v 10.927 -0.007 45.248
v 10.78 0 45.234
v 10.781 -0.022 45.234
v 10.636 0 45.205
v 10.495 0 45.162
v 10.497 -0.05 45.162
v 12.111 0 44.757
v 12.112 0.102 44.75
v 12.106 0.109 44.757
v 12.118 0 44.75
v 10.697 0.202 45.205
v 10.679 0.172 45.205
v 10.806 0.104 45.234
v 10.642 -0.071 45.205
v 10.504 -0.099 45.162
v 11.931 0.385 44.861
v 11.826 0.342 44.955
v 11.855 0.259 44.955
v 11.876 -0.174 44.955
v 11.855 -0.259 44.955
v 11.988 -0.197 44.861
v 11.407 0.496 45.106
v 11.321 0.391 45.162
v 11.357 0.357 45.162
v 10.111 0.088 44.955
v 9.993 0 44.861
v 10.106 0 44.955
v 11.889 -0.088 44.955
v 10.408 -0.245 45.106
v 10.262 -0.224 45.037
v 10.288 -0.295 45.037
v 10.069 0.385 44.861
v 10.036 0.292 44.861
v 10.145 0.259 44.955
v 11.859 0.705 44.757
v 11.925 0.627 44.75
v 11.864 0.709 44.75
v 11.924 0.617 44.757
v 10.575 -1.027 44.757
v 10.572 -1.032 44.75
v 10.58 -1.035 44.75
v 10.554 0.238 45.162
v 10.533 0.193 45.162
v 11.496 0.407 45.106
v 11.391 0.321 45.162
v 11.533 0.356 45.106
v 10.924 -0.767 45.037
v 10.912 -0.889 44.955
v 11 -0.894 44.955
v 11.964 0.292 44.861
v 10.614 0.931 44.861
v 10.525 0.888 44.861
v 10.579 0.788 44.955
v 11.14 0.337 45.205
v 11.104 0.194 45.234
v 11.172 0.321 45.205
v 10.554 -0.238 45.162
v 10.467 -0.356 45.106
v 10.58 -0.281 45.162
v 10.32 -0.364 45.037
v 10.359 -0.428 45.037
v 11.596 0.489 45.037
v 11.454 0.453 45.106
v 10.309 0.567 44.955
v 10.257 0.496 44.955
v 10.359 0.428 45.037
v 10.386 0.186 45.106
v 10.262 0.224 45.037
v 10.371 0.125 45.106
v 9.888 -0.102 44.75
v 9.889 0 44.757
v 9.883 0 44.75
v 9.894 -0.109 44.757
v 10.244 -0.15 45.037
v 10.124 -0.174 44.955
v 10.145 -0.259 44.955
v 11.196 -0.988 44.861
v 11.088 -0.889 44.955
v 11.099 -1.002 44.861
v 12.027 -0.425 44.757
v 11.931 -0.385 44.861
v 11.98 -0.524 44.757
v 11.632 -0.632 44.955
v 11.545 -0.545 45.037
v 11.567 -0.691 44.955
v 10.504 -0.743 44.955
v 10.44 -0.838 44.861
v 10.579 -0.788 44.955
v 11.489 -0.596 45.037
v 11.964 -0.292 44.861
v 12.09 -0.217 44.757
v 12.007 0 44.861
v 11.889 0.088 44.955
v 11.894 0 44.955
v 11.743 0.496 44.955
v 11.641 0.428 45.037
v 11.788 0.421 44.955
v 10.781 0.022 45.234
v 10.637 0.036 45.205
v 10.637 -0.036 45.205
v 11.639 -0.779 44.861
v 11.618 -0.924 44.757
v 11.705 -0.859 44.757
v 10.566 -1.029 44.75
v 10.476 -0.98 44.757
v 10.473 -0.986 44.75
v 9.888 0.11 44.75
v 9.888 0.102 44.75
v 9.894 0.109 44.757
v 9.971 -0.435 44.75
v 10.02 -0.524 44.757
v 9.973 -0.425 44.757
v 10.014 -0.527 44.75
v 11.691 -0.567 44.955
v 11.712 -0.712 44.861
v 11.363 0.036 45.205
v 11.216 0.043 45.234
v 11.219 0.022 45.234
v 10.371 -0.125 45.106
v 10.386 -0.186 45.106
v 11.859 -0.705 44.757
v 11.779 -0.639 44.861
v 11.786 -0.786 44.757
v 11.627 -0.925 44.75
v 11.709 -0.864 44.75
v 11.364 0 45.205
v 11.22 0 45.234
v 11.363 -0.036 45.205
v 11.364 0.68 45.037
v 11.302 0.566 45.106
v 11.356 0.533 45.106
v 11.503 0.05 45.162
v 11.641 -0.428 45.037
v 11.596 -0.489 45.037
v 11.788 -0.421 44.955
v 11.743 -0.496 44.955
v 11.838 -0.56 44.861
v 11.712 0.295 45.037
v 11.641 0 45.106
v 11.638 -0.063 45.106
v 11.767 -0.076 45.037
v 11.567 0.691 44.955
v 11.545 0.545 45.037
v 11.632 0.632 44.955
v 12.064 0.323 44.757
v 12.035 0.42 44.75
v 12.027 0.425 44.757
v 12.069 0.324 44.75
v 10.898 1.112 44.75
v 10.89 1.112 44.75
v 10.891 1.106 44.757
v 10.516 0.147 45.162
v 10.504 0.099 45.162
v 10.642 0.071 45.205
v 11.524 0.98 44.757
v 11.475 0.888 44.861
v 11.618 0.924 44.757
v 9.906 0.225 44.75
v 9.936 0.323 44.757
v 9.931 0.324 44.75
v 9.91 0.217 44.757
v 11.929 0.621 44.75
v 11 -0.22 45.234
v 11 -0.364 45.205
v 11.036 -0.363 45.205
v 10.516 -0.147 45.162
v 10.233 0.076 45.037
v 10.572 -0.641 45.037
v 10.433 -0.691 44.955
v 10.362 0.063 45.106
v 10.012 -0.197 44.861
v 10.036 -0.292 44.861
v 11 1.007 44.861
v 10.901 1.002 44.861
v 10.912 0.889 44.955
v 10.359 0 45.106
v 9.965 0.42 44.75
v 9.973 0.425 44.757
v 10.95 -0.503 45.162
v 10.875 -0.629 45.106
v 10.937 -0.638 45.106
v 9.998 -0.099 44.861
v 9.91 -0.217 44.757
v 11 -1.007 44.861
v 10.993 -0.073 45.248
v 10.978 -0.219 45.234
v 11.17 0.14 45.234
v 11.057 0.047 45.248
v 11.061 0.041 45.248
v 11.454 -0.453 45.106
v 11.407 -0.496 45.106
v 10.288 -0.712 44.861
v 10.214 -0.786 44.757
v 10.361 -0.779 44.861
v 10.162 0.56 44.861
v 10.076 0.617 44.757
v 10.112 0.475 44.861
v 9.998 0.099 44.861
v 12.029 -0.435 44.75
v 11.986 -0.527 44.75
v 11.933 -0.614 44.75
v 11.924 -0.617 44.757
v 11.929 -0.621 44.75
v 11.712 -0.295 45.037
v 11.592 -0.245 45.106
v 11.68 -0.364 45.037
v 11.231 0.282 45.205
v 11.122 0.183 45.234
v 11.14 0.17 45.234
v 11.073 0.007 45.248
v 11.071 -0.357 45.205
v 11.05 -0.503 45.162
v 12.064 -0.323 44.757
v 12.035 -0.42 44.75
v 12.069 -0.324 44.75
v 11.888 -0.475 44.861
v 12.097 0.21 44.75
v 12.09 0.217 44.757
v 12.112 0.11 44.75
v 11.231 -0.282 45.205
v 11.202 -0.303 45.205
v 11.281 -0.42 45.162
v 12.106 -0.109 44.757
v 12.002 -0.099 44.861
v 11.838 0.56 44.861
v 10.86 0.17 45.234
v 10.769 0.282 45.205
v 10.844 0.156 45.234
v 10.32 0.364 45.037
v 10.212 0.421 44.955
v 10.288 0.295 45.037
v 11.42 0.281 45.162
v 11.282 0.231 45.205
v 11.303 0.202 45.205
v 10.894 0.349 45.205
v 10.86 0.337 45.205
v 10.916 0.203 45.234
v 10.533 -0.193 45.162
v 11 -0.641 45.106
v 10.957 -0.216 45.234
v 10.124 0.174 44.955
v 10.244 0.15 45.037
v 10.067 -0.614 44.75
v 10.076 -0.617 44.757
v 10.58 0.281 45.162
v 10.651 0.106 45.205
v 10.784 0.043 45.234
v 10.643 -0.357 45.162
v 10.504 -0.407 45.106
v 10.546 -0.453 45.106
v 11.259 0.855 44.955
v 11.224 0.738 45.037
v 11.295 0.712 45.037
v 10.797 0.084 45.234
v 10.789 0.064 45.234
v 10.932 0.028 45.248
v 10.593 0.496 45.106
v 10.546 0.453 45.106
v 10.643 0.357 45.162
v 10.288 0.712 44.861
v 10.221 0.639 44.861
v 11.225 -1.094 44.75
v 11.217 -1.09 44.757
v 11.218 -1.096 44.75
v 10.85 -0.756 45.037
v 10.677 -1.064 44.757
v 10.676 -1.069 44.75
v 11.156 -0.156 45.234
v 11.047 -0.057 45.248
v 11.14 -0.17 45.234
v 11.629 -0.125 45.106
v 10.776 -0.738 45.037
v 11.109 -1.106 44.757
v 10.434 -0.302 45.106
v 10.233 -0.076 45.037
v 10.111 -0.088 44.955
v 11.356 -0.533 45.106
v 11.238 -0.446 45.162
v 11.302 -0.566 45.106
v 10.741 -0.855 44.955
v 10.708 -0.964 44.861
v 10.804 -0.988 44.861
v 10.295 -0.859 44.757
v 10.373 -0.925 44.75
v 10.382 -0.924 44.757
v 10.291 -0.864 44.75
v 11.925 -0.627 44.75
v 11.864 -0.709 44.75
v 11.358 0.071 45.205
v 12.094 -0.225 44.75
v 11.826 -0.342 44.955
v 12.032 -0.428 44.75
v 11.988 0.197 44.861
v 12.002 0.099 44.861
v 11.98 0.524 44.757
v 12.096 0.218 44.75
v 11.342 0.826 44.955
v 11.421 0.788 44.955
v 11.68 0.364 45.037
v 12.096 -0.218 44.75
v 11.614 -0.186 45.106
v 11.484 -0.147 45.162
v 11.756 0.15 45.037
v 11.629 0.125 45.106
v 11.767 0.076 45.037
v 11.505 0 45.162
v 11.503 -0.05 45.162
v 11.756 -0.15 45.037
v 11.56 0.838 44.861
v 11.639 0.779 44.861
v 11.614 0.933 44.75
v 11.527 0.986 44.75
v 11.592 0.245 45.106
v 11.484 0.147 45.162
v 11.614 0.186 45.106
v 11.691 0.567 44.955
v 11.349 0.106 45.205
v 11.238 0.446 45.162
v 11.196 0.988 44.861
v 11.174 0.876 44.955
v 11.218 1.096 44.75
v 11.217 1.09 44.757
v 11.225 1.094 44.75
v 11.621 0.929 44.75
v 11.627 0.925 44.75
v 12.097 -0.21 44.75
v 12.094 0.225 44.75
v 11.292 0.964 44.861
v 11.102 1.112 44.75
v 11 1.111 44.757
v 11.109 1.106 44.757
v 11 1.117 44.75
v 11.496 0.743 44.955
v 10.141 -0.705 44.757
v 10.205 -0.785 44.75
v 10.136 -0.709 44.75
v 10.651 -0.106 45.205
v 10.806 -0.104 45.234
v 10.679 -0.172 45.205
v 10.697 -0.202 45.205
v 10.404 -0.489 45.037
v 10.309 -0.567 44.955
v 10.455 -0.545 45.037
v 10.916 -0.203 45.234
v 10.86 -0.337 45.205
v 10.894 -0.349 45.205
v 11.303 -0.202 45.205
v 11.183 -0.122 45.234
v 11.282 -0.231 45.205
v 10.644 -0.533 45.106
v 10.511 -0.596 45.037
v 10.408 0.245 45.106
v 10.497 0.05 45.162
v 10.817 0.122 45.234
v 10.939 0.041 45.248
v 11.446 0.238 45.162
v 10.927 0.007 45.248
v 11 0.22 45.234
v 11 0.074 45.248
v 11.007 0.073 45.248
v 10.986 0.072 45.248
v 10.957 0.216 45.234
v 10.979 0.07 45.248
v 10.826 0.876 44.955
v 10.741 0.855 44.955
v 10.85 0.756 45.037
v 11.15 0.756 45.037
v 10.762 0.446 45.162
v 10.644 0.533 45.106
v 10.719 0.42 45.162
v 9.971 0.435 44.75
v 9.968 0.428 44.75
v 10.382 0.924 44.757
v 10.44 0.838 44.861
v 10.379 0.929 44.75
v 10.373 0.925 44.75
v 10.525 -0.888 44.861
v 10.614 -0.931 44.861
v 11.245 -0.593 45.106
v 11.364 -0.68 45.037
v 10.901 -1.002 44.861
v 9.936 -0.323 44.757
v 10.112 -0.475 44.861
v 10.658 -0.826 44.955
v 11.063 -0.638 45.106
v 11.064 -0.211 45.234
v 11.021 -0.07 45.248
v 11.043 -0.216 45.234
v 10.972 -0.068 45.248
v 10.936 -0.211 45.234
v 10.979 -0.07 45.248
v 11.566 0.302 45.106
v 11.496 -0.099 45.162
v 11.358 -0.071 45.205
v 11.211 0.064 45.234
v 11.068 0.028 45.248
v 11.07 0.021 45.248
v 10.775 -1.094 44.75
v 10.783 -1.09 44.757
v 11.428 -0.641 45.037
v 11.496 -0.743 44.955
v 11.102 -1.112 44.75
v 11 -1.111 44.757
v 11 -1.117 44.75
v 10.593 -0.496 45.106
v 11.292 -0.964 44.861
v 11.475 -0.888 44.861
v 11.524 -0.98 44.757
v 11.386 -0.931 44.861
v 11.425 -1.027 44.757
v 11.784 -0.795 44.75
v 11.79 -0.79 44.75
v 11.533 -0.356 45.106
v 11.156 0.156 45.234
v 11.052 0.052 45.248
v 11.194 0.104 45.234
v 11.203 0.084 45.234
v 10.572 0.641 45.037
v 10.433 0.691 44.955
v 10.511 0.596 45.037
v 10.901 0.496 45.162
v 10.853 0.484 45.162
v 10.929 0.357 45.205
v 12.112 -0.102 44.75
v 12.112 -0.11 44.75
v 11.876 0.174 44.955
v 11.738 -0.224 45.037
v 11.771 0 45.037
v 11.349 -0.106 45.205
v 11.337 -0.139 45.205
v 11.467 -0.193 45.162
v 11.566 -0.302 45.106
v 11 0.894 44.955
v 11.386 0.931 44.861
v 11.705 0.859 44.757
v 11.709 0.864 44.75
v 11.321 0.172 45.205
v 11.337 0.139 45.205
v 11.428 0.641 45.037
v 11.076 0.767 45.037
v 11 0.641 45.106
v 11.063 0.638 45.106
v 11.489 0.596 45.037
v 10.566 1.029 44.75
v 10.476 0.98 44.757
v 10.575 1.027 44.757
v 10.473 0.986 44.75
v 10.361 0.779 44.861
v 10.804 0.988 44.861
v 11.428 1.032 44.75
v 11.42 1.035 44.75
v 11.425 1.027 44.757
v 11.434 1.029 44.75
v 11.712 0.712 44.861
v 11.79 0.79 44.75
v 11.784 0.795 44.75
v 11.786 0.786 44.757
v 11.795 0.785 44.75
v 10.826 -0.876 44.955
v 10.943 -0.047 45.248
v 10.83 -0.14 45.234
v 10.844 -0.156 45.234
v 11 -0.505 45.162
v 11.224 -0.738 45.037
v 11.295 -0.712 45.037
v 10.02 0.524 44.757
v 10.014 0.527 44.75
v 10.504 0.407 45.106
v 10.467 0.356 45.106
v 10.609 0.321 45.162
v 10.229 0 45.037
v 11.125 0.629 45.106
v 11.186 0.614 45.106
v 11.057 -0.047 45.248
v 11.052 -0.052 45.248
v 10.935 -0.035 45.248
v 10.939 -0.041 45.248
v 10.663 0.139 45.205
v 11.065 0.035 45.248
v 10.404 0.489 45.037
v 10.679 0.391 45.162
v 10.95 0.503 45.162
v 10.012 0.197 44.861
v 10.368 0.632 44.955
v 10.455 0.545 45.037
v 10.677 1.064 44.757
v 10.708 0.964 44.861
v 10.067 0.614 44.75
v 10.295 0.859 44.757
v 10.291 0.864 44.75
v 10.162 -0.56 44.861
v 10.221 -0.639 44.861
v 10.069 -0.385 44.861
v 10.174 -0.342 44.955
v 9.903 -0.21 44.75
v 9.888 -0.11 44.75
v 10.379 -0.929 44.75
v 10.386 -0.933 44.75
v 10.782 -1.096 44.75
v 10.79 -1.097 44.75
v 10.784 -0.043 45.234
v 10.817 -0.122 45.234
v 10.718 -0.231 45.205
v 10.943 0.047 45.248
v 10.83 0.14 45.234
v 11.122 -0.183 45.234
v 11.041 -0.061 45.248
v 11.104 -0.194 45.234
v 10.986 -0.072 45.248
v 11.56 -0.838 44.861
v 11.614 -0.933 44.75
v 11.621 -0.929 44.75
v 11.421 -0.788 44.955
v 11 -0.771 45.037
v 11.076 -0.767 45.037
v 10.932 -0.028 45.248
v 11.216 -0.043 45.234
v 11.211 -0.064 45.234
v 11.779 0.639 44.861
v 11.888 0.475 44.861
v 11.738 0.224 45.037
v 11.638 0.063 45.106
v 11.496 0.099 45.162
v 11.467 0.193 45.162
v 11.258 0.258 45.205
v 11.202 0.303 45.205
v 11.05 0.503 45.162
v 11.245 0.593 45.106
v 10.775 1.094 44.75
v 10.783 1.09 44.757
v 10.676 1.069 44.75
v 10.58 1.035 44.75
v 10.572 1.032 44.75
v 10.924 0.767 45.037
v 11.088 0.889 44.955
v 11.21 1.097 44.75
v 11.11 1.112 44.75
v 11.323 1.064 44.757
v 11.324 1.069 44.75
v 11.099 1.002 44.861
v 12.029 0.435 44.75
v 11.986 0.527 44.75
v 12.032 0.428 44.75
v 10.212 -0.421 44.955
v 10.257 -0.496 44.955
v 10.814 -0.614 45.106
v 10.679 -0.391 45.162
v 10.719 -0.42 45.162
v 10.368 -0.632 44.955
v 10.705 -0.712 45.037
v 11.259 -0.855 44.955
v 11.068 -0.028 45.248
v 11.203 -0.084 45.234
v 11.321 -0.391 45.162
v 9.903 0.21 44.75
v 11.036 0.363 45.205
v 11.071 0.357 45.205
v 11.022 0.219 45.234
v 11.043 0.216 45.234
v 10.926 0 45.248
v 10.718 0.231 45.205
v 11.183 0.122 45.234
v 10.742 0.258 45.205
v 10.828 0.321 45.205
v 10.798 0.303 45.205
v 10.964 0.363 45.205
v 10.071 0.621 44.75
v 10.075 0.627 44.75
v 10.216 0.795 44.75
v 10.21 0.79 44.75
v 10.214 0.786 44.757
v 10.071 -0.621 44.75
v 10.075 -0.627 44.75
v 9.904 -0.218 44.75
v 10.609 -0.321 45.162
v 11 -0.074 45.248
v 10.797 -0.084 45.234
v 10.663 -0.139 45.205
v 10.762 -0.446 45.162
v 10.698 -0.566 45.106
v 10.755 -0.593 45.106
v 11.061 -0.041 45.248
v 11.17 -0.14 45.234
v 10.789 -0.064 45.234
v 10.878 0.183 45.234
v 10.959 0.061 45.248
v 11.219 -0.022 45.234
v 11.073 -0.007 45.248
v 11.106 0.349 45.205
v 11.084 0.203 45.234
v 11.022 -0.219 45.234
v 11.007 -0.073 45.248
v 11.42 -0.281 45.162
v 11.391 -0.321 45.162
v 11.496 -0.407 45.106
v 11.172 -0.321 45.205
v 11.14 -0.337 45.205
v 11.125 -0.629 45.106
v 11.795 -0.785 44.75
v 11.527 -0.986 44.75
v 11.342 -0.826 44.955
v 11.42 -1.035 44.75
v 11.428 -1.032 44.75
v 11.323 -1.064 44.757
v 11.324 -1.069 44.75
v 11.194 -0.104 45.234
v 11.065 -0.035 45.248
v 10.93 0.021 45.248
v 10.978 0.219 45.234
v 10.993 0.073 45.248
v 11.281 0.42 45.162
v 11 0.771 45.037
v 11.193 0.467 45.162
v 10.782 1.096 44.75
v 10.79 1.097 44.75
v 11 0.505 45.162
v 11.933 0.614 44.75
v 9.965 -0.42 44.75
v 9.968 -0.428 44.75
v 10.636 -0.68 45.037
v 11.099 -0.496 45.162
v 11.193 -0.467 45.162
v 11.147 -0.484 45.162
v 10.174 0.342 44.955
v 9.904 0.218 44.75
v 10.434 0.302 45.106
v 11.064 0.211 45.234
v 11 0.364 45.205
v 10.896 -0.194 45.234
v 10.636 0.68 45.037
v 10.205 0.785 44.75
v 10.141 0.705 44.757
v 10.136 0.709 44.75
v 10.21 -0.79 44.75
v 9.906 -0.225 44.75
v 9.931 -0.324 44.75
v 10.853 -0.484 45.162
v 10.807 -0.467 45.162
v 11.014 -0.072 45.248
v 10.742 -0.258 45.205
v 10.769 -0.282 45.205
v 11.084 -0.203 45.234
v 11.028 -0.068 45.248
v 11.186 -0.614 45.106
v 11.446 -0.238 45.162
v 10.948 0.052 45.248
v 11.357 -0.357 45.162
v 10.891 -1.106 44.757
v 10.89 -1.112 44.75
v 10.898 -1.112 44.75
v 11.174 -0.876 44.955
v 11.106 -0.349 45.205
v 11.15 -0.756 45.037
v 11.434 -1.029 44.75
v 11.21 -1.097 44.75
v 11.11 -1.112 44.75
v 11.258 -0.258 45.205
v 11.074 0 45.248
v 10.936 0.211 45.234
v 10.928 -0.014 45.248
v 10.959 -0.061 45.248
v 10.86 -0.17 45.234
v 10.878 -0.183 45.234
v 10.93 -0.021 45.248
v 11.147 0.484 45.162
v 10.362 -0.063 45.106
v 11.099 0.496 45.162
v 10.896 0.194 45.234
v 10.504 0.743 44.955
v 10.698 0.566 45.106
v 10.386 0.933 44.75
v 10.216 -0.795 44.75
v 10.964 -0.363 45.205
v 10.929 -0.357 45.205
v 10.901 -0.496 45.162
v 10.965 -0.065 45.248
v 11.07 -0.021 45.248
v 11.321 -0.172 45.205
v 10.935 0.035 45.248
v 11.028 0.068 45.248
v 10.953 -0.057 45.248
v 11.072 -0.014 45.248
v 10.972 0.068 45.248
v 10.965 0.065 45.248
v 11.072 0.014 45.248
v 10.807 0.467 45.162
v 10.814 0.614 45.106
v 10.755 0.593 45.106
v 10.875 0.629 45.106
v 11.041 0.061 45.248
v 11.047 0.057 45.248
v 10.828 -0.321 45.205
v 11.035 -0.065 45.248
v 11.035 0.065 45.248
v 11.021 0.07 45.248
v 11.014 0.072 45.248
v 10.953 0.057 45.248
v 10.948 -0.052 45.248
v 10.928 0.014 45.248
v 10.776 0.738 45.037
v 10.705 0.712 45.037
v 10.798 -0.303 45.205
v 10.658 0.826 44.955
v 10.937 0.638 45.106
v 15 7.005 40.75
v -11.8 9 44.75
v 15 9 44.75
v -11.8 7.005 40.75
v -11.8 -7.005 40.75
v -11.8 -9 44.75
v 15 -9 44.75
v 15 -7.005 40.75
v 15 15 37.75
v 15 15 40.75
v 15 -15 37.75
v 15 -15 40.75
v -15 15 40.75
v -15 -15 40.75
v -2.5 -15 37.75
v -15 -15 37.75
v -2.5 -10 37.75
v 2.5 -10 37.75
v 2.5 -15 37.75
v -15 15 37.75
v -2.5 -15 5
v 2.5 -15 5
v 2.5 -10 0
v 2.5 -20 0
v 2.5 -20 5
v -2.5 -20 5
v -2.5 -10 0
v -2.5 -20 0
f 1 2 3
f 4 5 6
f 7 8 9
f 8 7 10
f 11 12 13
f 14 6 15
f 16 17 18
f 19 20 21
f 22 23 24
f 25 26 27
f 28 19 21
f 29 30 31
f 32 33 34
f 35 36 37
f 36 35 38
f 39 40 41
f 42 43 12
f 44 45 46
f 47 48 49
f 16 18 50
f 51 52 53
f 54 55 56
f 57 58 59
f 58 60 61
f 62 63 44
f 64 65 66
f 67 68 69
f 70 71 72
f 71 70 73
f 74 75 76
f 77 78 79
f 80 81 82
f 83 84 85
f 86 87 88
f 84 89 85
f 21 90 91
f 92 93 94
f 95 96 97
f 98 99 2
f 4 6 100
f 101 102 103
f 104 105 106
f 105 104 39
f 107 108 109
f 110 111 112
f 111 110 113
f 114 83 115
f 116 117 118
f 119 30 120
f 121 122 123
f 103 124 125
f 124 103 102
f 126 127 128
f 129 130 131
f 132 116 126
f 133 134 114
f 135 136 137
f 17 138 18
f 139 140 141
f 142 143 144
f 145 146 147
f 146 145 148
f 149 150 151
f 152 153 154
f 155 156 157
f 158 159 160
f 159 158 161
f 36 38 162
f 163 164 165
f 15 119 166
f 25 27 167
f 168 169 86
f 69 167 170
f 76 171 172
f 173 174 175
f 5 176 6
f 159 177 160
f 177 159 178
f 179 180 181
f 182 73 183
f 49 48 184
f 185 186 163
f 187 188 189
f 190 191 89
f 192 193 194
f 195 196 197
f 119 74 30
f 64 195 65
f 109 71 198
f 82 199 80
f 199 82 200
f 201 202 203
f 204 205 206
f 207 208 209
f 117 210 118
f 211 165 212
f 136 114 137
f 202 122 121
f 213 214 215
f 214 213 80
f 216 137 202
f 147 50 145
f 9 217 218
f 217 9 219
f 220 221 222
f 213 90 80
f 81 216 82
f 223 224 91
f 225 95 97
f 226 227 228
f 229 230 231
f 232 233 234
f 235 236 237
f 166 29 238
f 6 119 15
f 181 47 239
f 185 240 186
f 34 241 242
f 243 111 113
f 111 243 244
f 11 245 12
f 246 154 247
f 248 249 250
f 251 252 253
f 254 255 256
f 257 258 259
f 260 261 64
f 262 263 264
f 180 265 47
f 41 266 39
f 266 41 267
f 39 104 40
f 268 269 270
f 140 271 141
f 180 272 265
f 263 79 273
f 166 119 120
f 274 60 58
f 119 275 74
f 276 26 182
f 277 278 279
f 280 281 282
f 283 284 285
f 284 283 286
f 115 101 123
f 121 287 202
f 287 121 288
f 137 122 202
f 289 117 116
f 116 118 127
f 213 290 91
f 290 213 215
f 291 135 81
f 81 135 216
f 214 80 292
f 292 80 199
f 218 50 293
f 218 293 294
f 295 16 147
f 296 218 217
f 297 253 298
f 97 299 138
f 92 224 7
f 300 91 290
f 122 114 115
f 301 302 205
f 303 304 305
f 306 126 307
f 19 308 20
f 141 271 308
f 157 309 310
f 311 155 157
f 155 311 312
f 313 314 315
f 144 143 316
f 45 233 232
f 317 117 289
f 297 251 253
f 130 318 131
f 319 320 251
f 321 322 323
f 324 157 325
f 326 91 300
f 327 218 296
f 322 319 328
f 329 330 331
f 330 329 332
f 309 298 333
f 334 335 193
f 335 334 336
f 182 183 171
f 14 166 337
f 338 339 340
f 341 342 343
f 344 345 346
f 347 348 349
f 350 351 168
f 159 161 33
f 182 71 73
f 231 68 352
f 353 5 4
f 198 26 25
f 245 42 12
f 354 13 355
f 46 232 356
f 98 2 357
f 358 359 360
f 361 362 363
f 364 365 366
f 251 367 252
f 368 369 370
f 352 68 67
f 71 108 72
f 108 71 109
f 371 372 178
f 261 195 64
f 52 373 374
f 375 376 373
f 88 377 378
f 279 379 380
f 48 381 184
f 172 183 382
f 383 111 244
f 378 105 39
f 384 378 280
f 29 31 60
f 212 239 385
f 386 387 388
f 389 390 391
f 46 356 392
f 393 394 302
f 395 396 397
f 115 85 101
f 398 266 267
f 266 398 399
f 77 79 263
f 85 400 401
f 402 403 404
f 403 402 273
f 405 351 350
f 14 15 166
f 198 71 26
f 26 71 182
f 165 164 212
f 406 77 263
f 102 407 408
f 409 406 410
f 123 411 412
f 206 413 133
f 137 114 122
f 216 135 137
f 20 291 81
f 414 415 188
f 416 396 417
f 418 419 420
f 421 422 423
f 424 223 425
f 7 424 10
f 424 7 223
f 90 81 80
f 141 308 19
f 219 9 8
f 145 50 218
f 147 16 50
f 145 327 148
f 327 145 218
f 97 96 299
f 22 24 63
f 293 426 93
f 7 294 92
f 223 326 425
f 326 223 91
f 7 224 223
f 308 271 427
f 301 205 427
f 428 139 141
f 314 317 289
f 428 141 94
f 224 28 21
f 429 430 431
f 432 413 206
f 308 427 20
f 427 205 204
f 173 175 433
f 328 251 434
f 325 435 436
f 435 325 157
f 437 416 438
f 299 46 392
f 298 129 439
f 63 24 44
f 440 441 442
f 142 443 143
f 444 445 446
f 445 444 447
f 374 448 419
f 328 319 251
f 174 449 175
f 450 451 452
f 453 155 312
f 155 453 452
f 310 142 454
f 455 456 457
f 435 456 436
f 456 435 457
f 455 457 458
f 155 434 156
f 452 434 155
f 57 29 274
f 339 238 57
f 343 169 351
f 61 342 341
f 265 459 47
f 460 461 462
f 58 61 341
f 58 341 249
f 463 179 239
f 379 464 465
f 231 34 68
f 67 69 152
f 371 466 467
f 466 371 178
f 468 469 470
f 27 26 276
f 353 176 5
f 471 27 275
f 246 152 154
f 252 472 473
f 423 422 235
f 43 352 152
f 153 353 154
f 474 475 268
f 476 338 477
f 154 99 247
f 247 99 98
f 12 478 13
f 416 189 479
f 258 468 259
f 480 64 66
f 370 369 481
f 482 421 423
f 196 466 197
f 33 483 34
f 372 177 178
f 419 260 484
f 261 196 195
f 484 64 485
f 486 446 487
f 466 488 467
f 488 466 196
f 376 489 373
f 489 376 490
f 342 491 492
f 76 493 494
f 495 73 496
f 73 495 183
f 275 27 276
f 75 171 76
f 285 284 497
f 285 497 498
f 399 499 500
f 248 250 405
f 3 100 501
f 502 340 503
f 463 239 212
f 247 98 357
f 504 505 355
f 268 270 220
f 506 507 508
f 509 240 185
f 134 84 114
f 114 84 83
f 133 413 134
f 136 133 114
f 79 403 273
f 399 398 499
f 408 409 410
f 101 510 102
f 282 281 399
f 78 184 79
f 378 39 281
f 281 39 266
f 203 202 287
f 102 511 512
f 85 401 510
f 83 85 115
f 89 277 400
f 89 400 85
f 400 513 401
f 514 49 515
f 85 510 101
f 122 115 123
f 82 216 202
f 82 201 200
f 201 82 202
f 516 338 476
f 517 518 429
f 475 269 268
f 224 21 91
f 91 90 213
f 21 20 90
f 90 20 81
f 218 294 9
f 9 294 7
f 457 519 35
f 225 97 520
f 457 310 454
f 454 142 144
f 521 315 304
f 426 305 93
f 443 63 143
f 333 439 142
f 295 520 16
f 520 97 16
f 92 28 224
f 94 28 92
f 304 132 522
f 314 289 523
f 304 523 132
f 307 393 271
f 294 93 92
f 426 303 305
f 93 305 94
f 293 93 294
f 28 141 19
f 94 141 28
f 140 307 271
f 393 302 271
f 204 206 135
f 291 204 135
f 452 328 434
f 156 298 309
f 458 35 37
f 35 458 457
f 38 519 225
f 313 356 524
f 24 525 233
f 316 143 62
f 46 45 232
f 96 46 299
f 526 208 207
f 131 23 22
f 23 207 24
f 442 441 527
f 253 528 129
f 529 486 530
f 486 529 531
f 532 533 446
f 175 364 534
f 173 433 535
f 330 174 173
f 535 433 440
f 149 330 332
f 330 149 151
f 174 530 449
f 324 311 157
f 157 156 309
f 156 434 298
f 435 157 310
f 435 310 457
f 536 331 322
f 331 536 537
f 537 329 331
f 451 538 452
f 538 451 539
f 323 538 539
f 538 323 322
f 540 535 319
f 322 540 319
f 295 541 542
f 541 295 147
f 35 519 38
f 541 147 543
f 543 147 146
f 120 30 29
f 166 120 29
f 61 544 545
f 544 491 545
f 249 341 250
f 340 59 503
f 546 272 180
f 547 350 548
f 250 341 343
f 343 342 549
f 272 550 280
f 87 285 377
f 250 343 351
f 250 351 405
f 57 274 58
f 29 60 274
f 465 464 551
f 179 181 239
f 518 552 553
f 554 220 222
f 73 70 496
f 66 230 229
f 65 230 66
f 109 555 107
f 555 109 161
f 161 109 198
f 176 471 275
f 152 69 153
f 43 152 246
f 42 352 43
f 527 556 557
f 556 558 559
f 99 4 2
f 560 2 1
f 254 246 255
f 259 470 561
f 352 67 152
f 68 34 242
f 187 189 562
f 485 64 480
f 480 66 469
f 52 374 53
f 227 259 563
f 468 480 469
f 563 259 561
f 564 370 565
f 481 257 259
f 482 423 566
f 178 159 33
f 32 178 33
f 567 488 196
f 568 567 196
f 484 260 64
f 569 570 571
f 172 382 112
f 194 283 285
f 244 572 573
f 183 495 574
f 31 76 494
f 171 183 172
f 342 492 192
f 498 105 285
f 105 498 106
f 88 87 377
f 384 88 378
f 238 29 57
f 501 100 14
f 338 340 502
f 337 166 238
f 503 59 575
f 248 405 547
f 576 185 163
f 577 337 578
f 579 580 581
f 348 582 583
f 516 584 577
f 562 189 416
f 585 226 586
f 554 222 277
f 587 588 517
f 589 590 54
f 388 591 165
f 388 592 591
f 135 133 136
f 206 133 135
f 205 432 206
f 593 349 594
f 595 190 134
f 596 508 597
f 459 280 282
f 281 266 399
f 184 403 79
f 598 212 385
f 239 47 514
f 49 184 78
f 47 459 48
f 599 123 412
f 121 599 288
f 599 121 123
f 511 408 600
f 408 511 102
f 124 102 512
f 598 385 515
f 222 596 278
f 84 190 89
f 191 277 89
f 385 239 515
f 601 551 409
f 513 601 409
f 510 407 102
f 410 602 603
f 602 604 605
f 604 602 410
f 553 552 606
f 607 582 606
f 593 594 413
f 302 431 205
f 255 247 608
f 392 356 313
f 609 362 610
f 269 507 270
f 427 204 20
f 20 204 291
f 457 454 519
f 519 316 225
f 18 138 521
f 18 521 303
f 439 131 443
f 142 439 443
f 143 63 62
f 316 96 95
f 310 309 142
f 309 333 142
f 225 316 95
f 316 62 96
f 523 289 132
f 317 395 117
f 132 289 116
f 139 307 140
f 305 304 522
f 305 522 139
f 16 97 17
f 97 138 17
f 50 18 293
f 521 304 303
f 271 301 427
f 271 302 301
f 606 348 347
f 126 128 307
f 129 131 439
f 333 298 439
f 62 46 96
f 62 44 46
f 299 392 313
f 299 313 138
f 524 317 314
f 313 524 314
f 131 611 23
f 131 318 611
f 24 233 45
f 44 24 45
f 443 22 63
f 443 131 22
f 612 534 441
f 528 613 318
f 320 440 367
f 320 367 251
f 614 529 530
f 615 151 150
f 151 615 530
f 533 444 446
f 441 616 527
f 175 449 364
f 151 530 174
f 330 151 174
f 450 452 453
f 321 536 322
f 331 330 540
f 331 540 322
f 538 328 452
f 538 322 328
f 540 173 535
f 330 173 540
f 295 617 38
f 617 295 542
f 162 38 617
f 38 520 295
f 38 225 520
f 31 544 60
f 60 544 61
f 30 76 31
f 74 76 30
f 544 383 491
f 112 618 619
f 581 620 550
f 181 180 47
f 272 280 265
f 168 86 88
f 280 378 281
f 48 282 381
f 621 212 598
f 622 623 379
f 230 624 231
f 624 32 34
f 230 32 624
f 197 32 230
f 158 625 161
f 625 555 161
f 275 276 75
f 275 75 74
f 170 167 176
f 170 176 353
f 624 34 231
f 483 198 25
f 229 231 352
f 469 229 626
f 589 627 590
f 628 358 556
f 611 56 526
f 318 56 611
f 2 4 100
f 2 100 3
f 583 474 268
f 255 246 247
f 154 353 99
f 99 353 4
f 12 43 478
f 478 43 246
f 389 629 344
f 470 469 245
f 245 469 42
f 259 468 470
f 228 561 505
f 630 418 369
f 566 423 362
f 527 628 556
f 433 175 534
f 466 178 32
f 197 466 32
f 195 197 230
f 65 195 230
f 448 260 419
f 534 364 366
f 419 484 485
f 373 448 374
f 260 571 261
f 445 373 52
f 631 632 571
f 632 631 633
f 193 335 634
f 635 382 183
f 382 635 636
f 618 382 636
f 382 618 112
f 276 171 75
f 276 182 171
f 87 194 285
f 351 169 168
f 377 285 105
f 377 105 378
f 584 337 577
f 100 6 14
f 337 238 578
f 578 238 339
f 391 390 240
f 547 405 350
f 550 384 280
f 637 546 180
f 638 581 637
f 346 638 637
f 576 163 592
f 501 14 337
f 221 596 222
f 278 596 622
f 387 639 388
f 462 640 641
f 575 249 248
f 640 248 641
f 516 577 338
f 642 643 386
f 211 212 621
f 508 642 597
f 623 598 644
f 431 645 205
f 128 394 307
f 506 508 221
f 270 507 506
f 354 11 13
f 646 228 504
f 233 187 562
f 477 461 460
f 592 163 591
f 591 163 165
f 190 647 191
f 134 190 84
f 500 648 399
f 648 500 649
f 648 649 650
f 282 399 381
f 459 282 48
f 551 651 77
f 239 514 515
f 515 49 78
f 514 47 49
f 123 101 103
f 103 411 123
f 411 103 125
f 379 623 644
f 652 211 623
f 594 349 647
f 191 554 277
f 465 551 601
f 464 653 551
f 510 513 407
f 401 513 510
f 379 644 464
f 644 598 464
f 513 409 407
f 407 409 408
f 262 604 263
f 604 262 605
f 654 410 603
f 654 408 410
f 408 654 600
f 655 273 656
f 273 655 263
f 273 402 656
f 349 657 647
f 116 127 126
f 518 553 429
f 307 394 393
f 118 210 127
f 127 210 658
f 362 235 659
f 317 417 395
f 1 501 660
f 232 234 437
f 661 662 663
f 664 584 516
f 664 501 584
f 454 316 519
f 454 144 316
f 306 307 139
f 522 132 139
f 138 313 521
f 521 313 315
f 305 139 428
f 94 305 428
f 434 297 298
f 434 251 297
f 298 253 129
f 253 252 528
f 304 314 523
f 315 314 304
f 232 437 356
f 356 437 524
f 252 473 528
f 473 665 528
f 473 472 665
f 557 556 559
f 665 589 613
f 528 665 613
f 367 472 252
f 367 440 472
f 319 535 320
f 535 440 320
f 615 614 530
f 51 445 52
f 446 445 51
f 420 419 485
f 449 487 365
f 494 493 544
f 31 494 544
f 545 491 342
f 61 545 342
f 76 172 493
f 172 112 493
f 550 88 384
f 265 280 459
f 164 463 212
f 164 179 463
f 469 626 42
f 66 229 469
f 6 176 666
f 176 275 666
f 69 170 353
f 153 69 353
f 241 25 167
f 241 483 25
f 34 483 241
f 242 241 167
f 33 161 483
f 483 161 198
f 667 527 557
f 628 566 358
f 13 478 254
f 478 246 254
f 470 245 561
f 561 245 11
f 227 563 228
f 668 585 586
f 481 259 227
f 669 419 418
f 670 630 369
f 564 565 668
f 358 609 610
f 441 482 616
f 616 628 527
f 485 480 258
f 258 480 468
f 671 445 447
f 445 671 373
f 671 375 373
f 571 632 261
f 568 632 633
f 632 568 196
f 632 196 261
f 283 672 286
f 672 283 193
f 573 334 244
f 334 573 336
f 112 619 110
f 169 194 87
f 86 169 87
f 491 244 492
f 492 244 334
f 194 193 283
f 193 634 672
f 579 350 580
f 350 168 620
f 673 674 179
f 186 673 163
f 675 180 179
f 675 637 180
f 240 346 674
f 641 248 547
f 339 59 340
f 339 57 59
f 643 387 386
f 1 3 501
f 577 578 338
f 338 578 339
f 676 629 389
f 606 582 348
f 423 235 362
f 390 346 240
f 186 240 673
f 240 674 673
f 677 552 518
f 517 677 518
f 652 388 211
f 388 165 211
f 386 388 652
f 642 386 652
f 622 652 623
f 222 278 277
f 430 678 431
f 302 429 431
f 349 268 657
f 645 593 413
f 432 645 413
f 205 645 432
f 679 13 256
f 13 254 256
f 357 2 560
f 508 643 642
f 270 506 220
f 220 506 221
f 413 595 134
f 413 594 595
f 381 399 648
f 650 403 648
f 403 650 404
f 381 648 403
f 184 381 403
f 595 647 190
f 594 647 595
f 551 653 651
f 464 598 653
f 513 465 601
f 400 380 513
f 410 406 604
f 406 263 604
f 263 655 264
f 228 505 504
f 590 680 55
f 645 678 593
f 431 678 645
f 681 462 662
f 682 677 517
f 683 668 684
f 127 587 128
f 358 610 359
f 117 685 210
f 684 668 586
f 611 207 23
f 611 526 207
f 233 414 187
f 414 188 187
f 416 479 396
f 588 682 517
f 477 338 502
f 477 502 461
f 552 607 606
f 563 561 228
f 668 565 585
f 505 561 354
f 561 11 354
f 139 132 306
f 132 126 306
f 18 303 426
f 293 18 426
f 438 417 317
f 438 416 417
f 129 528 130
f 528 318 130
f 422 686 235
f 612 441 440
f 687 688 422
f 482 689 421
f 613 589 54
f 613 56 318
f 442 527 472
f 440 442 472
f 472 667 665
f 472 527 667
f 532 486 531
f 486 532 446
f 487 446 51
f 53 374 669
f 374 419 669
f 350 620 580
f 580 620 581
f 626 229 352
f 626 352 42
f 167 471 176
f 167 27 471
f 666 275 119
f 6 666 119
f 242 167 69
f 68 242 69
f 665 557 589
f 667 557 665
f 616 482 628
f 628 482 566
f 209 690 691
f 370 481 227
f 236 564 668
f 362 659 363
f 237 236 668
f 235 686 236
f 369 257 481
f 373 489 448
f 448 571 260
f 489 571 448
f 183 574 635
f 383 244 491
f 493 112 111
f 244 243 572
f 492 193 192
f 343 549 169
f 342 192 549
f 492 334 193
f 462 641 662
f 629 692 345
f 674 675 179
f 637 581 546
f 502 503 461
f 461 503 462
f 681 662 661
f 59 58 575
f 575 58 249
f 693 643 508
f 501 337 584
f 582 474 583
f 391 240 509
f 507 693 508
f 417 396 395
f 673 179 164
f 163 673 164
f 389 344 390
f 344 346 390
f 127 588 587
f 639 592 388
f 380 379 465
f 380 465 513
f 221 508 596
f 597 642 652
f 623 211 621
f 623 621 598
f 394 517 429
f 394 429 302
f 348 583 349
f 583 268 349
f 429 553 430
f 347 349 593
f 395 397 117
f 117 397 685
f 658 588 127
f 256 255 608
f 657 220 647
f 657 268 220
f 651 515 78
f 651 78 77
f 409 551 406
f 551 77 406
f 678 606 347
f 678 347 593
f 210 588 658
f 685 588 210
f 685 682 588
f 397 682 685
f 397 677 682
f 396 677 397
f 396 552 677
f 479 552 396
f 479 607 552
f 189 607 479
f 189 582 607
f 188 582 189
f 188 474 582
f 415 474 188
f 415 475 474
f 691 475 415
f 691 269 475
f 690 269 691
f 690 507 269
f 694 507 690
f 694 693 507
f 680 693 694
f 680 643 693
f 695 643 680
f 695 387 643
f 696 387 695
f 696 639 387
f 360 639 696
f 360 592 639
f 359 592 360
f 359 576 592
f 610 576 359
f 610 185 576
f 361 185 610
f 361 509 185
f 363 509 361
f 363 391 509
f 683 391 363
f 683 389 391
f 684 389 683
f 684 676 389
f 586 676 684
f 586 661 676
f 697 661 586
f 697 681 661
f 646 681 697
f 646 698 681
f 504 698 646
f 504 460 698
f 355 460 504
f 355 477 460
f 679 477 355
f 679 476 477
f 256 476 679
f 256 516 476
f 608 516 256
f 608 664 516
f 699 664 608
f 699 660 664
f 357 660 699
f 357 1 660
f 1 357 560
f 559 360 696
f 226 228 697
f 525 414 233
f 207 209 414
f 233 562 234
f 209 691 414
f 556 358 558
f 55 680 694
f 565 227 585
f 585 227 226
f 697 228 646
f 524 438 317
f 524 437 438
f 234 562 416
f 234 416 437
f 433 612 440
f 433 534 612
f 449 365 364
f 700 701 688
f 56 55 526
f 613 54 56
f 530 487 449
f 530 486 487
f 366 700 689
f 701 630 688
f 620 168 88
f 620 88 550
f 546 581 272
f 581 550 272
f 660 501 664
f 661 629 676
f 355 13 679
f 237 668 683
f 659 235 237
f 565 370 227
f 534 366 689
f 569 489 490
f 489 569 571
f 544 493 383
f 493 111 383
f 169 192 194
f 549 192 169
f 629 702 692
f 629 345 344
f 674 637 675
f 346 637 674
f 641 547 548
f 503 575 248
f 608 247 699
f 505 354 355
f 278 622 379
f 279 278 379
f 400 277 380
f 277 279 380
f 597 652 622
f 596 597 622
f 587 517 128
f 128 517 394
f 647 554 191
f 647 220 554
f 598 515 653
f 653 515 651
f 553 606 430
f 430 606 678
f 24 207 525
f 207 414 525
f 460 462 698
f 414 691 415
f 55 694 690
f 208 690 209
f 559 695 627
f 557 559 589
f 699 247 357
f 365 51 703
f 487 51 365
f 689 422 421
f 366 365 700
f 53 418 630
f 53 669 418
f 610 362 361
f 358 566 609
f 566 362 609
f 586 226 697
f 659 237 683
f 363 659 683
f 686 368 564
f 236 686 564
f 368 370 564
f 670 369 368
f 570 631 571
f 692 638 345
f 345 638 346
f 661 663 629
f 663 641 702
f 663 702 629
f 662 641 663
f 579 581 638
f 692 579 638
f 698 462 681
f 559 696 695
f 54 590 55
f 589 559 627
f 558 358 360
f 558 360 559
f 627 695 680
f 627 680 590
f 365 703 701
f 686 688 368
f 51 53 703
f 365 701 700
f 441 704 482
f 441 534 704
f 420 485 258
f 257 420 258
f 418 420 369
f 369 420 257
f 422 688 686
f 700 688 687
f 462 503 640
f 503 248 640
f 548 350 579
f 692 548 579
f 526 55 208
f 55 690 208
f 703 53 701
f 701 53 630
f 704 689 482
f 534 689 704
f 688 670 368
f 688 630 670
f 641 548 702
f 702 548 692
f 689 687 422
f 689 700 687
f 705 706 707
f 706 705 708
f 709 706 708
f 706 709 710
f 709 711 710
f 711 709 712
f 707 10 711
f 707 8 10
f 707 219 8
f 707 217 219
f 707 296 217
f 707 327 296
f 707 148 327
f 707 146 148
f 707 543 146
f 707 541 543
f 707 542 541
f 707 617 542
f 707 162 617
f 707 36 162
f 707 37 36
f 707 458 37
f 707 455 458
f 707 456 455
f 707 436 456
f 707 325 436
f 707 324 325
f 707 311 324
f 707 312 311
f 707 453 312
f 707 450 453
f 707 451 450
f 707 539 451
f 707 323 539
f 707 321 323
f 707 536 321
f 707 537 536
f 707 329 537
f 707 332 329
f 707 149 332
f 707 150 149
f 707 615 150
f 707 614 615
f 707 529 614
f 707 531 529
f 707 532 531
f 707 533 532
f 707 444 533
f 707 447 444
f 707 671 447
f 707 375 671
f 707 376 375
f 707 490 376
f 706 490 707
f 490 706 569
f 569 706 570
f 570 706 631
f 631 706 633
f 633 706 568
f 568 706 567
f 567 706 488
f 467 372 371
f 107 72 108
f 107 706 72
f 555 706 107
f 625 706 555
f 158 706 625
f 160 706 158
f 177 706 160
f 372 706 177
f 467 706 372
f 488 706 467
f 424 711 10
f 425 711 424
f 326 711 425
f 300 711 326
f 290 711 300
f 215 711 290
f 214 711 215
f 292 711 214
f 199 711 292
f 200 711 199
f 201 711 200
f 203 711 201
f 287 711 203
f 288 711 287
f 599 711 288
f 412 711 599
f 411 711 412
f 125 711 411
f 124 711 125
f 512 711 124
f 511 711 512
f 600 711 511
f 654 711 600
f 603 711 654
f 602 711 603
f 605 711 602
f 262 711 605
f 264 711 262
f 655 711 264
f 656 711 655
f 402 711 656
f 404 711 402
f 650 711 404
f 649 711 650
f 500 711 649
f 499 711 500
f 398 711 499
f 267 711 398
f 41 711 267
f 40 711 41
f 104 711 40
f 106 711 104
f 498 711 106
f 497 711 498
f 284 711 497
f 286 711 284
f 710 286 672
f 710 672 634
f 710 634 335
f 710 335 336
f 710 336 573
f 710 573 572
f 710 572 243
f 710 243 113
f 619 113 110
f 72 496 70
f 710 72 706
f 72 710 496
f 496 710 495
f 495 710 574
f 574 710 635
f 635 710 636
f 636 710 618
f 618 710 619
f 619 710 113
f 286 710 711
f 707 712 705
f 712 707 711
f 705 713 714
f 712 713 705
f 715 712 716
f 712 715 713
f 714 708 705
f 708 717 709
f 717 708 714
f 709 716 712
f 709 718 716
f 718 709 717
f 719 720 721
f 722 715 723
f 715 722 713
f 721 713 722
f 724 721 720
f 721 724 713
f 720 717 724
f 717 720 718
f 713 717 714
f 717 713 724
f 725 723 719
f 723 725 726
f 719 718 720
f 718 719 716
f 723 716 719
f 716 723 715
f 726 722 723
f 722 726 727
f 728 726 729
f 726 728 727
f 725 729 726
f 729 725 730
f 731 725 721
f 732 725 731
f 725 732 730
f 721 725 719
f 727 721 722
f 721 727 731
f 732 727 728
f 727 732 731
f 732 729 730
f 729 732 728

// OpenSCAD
// file: catch_common.scad
// ============================================================
// Sliding screen catch - shared parameters and helpers
// Included by catch_lower.scad, catch_mount.scad, catch_assembly.scad
//
// Coordinate system (assembled position):
//   Origin at plate centre, Z up. The frame is above (+Z).
//   Front edge of the plates is -Y; the leg hangs from it.
//   The catch slides into the mount from +X toward -X.
// ============================================================

$fn = 64;

// ---- Catch (lower part) ----
plate_w      = 30;   // plate size, X
plate_d      = 30;   // plate size, Y
plate_t      = 3;    // catch plate thickness // guess - not on sketch

leg_w        = 5;    // leg cross-section, X
leg_d        = 5;    // leg cross-section, Y

foot_w       = 5;    // foot width, X
foot_l       = 10;   // foot length, Y (total, incl. the part under the leg)
foot_t       = 5;    // foot thickness, Z

total_h      = 50;   // bottom of foot to top of mount (frame face) - overall assembled height

// ---- Dovetail joint ----
dt_h         = 4;    // tongue height
dt_w_bot     = 14;   // tongue width where it meets the catch plate (narrow)
dt_w_top     = 18;   // tongue width at its top face (wide)
dt_clear     = 0.2;  // clearance per side - tune for your printer
end_wall     = 3;    // closed end of the channel in the mount (-X side)

// ---- Snap detent ----
det_x        = 11;   // detent position along X (near the open/entry end)
det_r        = 1.5;  // bump sphere radius
det_h        = 0.5;  // bump height above tongue top - raise for a firmer click

// ---- Mounting plate ----
screw_meat   = 3;    // solid material between countersink bottom and frame face

// ---- Wood screw (#8 / ~4 mm flat head) ----
screw_d      = 4.5;  // shank clearance hole
screw_head_d = 8.6;  // countersink diameter at the surface
screw_csk_angle = 90; // included angle (82 for US imperial screws, 90 metric)

// ---- Derived ----
csk_depth    = (screw_head_d - screw_d) / 2 / tan(screw_csk_angle / 2);   // ~2.05
mount_t      = dt_h + dt_clear + csk_depth + screw_meat;                   // ~9.25
catch_h      = total_h - mount_t;            // foot bottom to catch plate top, ~40.75
leg_h        = catch_h - plate_t - foot_t;   // ~32.75
front_y      = -plate_d / 2;
leg_y0       = front_y;                      // leg flush with front edge
foot_y0      = leg_y0 + leg_d - foot_l;      // foot projects forward (-Y)
plate_top_z  = catch_h;
tongue_top_z = plate_top_z + dt_h;
tongue_x0    = -plate_w/2 + end_wall + dt_clear;
tongue_len   = plate_w/2 - tongue_x0;

// Trapezoid (narrow at z=0, wide at z=h) in the Y-Z plane, extruded along +X.
module dovetail(w_bot, w_top, h, len) {
    rotate([90, 0, 90])
        linear_extrude(len)
            polygon([[-w_bot/2, 0], [w_bot/2, 0], [w_top/2, h], [-w_top/2, h]]);
}
// main file
// ============================================================
// Catch - lower part
// Plate with a dovetail tongue on top; slides into catch_mount.scad.
// The leg drops from the front edge (-Y); the foot projects forward.
//
// Print: upside down (tongue on the bed), leg pointing up.
// ============================================================

include <catch_common.scad>

module top_plate() {
    translate([-plate_w/2, -plate_d/2, plate_top_z - plate_t])
        cube([plate_w, plate_d, plate_t]);
}

module tongue() {
    // starts slightly below the plate top so the union is solid
    translate([tongue_x0, 0, plate_top_z - 0.01])
        dovetail(dt_w_bot, dt_w_top, dt_h + 0.01, tongue_len);
    // snap detent bump on the tongue top face
    intersection() {
        translate([det_x, 0, tongue_top_z - (det_r - det_h)]) sphere(det_r);
        translate([det_x - det_r, -det_r, tongue_top_z - 0.01])
            cube([2*det_r, 2*det_r, det_h + 0.01]);
    }
}

module leg() {
    translate([-leg_w/2, leg_y0, foot_t])
        cube([leg_w, leg_d, leg_h]);
}

module catch_foot() {
    translate([-foot_w/2, foot_y0, 0])
        cube([foot_w, foot_l, foot_t]);
}

module catch_lower() {
    union() {
        top_plate();
        tongue();
        leg();
        catch_foot();
    }
}

catch_lower();
